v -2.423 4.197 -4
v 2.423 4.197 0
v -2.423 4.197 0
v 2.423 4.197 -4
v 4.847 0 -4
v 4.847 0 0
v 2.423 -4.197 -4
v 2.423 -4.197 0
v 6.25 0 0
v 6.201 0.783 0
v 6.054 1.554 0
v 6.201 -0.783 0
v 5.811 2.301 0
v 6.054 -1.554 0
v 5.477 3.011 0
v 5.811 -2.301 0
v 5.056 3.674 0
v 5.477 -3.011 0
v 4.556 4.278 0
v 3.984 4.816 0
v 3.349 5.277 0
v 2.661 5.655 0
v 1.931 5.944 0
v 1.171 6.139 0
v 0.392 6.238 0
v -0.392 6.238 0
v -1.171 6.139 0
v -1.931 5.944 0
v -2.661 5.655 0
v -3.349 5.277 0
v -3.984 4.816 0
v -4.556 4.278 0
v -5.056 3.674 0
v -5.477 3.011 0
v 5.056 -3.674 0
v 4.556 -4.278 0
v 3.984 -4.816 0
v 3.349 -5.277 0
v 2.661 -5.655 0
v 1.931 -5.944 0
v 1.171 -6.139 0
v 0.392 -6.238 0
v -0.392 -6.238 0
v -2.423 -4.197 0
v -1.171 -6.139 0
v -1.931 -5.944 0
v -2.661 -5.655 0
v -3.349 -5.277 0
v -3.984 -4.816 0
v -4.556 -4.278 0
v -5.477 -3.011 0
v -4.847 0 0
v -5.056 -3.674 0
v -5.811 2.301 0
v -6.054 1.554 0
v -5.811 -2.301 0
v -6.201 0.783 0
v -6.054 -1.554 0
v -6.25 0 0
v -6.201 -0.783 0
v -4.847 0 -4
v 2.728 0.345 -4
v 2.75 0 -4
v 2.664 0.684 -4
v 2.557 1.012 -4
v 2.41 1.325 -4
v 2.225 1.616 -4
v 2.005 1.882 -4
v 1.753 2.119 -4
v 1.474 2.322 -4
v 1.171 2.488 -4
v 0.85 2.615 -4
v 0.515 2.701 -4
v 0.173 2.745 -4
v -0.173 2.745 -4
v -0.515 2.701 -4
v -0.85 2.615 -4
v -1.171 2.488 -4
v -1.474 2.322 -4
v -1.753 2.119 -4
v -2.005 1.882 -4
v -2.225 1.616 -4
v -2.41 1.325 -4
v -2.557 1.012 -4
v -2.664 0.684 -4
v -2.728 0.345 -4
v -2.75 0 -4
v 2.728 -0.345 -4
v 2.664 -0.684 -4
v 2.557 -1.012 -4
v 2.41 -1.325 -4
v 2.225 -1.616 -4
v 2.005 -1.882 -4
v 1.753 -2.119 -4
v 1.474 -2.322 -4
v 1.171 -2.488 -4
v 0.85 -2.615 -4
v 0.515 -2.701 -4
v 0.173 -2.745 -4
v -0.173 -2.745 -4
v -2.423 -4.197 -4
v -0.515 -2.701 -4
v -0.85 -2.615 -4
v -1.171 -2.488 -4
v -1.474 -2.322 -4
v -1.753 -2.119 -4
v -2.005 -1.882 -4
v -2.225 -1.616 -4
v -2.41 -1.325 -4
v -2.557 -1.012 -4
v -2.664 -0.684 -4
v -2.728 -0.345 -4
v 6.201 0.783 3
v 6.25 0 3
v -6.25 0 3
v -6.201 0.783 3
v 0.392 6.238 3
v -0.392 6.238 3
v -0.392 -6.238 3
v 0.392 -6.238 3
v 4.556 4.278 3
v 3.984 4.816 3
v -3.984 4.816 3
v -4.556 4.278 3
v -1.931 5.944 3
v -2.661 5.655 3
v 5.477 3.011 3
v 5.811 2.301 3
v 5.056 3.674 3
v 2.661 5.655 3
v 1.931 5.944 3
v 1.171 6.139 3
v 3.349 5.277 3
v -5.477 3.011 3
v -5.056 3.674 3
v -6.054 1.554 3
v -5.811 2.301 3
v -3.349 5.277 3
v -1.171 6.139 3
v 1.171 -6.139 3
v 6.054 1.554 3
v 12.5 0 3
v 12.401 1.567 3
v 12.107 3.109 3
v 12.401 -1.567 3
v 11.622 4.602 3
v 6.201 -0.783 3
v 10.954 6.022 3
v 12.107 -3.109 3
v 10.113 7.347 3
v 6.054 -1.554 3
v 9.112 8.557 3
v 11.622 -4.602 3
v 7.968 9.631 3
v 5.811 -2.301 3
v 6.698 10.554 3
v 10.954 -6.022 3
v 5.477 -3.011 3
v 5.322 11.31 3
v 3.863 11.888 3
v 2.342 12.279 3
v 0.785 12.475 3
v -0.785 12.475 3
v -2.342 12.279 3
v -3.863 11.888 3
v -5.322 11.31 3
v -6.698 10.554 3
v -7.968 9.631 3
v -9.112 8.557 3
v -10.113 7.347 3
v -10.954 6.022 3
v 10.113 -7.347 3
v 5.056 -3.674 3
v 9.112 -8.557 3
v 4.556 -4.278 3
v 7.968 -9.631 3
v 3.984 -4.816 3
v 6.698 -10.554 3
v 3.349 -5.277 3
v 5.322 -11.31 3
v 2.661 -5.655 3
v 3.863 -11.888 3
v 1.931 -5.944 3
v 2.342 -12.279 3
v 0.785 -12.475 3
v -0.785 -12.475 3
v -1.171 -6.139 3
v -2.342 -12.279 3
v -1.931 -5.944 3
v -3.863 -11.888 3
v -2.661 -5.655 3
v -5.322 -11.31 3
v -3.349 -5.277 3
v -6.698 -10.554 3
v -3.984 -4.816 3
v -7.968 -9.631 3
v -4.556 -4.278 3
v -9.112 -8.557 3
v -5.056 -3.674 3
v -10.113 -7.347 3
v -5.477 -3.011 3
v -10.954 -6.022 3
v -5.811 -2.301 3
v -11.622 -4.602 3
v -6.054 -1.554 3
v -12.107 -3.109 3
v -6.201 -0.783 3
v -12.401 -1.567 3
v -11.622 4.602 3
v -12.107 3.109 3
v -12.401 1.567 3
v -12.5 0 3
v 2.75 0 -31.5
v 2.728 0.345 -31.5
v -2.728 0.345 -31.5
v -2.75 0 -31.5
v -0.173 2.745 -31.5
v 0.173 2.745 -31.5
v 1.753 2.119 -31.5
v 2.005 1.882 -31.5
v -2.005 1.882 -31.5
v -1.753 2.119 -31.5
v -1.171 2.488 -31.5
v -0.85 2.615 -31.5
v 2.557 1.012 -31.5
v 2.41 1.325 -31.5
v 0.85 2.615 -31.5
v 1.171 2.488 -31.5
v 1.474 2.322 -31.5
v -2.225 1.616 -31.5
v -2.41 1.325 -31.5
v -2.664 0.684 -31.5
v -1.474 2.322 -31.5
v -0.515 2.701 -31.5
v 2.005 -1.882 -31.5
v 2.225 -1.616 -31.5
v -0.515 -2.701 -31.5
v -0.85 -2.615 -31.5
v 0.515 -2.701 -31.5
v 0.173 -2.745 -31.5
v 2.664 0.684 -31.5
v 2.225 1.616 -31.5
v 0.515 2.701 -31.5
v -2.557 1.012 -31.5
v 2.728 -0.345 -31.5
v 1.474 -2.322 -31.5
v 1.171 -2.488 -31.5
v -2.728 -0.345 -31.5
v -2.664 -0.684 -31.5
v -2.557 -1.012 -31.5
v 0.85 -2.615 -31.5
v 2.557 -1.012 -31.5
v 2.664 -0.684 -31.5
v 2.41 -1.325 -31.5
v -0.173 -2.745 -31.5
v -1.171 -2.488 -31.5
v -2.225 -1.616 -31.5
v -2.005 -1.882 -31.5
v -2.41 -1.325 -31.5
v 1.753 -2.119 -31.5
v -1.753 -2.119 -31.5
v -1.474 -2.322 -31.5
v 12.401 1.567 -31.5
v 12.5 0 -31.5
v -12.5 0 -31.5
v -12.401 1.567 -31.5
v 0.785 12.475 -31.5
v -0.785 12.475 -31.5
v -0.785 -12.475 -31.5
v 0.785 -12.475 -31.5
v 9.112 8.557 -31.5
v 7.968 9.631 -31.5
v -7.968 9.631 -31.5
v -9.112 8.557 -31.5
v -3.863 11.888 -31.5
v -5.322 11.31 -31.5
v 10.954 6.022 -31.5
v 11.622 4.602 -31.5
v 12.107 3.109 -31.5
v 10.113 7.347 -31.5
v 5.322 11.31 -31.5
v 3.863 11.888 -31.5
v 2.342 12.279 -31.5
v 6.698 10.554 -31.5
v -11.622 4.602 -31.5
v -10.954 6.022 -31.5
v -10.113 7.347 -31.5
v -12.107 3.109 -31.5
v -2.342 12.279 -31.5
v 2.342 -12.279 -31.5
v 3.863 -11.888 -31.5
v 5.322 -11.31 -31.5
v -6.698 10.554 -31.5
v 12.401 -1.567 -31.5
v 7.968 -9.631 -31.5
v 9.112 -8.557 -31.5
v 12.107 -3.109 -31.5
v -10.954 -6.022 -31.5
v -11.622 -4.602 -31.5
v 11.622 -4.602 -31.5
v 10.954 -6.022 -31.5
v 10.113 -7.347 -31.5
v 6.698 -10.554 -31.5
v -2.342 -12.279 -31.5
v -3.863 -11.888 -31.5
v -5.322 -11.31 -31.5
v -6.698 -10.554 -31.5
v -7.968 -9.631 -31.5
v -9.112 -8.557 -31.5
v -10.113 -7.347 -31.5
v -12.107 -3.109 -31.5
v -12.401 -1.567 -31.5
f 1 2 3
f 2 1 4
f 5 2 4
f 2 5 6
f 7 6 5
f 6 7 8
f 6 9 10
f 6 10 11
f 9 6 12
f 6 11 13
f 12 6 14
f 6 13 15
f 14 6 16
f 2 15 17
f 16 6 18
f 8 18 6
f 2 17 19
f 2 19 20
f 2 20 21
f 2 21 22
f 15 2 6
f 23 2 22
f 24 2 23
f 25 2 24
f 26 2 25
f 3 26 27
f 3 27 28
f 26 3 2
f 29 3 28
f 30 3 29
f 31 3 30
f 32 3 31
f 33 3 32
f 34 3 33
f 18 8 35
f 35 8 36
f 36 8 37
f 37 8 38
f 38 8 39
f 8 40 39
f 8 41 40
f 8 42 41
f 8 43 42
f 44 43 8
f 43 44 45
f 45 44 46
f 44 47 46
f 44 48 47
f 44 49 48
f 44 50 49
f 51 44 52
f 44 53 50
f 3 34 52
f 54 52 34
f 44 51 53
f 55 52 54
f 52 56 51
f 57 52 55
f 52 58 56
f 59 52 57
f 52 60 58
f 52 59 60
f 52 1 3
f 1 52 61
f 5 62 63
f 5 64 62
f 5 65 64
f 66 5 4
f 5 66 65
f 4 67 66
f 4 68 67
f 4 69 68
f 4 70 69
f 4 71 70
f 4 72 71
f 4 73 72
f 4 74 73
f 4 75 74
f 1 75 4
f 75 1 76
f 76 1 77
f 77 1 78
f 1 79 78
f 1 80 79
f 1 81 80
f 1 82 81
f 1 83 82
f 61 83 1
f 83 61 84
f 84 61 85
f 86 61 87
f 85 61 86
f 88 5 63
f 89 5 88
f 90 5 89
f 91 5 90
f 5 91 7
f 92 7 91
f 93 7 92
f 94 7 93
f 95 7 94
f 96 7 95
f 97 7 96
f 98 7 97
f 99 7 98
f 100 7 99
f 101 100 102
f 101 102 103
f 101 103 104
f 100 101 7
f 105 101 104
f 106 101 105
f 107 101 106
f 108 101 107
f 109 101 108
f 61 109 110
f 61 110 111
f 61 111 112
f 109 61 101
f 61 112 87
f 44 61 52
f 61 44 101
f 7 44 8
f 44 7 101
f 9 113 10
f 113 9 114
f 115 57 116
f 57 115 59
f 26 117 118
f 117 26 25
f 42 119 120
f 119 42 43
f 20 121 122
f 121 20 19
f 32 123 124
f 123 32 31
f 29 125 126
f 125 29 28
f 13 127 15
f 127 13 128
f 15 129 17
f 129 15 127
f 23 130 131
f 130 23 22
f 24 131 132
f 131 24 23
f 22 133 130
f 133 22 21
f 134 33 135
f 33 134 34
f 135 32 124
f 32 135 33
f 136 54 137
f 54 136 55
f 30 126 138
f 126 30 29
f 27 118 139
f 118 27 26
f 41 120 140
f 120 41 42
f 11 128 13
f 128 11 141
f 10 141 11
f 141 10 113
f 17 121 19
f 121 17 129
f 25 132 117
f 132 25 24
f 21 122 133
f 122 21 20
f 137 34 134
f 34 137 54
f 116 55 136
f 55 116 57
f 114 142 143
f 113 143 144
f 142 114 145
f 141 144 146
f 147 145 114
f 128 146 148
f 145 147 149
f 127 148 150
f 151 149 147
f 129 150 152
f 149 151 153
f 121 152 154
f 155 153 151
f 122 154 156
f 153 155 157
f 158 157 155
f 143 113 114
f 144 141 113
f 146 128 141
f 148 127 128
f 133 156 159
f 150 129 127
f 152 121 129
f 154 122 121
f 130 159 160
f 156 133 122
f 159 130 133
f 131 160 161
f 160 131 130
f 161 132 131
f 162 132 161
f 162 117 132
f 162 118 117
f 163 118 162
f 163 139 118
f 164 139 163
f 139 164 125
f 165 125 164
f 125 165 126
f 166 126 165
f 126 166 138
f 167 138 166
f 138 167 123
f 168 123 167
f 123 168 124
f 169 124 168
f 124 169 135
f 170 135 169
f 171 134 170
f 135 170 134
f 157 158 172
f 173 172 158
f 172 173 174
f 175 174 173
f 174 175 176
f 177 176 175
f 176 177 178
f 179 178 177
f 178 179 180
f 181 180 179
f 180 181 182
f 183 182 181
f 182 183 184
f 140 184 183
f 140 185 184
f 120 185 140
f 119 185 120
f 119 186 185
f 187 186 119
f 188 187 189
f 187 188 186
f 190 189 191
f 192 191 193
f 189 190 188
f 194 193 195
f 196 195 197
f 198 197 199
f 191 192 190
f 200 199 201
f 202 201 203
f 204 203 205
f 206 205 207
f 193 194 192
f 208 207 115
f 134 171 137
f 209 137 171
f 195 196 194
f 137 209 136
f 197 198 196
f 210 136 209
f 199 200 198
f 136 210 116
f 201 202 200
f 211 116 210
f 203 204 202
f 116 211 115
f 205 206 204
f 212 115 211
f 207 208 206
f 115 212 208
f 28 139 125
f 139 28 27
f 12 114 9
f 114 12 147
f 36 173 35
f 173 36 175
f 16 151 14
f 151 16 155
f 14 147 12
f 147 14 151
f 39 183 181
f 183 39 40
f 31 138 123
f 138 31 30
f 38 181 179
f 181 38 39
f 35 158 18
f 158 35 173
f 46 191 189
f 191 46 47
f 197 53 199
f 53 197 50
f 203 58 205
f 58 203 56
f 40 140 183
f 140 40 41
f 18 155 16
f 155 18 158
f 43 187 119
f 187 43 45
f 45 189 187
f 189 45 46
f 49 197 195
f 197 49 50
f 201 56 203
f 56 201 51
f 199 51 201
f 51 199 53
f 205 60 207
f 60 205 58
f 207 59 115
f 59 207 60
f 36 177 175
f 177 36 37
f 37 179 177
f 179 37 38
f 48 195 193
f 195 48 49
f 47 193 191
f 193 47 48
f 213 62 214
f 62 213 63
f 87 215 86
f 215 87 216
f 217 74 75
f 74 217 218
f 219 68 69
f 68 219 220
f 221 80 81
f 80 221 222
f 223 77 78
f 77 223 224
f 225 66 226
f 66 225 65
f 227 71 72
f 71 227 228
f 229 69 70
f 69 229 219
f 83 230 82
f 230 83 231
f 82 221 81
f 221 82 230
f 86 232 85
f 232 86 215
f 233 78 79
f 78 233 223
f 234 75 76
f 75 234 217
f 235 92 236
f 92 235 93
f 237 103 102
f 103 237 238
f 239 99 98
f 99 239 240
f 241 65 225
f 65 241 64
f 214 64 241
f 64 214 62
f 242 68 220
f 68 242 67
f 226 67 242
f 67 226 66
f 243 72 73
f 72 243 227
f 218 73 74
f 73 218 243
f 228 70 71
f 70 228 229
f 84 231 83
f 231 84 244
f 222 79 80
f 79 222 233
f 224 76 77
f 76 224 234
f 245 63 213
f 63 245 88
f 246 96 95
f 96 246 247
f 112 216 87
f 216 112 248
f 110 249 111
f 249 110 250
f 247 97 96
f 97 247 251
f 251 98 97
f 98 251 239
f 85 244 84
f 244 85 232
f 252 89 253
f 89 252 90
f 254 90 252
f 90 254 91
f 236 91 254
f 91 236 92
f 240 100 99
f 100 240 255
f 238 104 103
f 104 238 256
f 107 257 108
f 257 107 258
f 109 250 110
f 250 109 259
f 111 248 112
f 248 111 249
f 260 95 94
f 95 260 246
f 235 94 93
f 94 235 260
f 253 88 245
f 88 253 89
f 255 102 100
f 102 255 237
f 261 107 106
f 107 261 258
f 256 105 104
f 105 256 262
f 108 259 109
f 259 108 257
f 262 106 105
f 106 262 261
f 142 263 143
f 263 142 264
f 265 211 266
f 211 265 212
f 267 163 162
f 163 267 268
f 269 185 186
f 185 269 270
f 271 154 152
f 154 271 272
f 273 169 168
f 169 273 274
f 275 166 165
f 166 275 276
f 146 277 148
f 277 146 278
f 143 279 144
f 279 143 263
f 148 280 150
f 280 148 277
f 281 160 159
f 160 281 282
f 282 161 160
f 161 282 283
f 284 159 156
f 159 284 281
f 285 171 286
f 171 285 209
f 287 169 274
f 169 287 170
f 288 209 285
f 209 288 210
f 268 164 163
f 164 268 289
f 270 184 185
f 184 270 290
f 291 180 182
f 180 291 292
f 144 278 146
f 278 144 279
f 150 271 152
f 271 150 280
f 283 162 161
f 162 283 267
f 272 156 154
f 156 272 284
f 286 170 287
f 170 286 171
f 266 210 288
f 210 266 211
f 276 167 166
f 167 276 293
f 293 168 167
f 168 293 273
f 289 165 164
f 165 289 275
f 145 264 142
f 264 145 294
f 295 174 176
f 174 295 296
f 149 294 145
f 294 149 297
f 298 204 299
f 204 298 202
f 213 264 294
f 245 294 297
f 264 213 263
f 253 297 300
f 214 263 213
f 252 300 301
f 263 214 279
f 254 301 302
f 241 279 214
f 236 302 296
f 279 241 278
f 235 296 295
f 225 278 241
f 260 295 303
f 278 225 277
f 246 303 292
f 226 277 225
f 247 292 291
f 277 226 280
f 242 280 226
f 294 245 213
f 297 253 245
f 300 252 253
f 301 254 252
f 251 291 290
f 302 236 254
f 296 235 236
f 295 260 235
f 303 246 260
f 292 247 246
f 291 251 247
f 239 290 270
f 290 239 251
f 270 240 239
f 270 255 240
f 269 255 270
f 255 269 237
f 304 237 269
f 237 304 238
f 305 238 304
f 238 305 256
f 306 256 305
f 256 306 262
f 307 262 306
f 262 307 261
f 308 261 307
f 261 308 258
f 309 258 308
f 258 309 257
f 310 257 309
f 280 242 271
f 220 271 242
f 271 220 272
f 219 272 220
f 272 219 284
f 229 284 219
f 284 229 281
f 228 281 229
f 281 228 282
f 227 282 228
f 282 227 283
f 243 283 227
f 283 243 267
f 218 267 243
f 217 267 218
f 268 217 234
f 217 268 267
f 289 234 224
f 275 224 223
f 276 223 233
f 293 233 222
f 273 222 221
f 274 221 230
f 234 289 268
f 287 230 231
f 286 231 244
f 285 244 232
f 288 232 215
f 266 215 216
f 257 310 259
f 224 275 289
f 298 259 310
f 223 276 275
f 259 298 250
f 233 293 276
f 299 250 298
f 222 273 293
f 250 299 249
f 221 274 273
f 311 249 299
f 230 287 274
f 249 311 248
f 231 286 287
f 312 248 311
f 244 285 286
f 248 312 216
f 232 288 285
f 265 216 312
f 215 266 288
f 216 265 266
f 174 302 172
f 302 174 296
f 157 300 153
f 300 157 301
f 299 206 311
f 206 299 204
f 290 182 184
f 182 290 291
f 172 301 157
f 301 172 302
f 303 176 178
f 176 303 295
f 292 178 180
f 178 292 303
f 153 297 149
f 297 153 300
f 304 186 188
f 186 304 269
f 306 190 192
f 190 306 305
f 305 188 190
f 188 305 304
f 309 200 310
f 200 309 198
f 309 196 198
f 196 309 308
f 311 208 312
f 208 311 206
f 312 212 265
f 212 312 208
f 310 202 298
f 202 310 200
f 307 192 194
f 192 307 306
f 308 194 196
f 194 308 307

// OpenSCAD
$fn = 50;

difference() {
	union() {
		translate(v = [0, 0, -31.5]) {
			cylinder(h = 34.5, r = 12.5);
		}
	}
	union() {
		translate(v = [0, 0, 0]) {
			rotate(a = [0, 0, 0]) {
				difference() {
					union() {
						translate(v = [0, 0, -4]) {
							linear_extrude(height = 4) {
								polygon(points = [[4.8468, 0.0], [2.4234000000000004, 4.197451927062417], [-2.423399999999999, 4.197451927062417], [-4.8468, 5.935618106107392e-16], [-2.423400000000002, -4.197451927062416], [2.423399999999997, -4.197451927062419]]);
							}
						}
					}
					union();
				}
			}
		}
		#cylinder(h = 3, r = 6.25);
		#translate(v = [0, 0, -100.0]) {
			cylinder(h = 200, r = 2.75);
		}
	}
}
